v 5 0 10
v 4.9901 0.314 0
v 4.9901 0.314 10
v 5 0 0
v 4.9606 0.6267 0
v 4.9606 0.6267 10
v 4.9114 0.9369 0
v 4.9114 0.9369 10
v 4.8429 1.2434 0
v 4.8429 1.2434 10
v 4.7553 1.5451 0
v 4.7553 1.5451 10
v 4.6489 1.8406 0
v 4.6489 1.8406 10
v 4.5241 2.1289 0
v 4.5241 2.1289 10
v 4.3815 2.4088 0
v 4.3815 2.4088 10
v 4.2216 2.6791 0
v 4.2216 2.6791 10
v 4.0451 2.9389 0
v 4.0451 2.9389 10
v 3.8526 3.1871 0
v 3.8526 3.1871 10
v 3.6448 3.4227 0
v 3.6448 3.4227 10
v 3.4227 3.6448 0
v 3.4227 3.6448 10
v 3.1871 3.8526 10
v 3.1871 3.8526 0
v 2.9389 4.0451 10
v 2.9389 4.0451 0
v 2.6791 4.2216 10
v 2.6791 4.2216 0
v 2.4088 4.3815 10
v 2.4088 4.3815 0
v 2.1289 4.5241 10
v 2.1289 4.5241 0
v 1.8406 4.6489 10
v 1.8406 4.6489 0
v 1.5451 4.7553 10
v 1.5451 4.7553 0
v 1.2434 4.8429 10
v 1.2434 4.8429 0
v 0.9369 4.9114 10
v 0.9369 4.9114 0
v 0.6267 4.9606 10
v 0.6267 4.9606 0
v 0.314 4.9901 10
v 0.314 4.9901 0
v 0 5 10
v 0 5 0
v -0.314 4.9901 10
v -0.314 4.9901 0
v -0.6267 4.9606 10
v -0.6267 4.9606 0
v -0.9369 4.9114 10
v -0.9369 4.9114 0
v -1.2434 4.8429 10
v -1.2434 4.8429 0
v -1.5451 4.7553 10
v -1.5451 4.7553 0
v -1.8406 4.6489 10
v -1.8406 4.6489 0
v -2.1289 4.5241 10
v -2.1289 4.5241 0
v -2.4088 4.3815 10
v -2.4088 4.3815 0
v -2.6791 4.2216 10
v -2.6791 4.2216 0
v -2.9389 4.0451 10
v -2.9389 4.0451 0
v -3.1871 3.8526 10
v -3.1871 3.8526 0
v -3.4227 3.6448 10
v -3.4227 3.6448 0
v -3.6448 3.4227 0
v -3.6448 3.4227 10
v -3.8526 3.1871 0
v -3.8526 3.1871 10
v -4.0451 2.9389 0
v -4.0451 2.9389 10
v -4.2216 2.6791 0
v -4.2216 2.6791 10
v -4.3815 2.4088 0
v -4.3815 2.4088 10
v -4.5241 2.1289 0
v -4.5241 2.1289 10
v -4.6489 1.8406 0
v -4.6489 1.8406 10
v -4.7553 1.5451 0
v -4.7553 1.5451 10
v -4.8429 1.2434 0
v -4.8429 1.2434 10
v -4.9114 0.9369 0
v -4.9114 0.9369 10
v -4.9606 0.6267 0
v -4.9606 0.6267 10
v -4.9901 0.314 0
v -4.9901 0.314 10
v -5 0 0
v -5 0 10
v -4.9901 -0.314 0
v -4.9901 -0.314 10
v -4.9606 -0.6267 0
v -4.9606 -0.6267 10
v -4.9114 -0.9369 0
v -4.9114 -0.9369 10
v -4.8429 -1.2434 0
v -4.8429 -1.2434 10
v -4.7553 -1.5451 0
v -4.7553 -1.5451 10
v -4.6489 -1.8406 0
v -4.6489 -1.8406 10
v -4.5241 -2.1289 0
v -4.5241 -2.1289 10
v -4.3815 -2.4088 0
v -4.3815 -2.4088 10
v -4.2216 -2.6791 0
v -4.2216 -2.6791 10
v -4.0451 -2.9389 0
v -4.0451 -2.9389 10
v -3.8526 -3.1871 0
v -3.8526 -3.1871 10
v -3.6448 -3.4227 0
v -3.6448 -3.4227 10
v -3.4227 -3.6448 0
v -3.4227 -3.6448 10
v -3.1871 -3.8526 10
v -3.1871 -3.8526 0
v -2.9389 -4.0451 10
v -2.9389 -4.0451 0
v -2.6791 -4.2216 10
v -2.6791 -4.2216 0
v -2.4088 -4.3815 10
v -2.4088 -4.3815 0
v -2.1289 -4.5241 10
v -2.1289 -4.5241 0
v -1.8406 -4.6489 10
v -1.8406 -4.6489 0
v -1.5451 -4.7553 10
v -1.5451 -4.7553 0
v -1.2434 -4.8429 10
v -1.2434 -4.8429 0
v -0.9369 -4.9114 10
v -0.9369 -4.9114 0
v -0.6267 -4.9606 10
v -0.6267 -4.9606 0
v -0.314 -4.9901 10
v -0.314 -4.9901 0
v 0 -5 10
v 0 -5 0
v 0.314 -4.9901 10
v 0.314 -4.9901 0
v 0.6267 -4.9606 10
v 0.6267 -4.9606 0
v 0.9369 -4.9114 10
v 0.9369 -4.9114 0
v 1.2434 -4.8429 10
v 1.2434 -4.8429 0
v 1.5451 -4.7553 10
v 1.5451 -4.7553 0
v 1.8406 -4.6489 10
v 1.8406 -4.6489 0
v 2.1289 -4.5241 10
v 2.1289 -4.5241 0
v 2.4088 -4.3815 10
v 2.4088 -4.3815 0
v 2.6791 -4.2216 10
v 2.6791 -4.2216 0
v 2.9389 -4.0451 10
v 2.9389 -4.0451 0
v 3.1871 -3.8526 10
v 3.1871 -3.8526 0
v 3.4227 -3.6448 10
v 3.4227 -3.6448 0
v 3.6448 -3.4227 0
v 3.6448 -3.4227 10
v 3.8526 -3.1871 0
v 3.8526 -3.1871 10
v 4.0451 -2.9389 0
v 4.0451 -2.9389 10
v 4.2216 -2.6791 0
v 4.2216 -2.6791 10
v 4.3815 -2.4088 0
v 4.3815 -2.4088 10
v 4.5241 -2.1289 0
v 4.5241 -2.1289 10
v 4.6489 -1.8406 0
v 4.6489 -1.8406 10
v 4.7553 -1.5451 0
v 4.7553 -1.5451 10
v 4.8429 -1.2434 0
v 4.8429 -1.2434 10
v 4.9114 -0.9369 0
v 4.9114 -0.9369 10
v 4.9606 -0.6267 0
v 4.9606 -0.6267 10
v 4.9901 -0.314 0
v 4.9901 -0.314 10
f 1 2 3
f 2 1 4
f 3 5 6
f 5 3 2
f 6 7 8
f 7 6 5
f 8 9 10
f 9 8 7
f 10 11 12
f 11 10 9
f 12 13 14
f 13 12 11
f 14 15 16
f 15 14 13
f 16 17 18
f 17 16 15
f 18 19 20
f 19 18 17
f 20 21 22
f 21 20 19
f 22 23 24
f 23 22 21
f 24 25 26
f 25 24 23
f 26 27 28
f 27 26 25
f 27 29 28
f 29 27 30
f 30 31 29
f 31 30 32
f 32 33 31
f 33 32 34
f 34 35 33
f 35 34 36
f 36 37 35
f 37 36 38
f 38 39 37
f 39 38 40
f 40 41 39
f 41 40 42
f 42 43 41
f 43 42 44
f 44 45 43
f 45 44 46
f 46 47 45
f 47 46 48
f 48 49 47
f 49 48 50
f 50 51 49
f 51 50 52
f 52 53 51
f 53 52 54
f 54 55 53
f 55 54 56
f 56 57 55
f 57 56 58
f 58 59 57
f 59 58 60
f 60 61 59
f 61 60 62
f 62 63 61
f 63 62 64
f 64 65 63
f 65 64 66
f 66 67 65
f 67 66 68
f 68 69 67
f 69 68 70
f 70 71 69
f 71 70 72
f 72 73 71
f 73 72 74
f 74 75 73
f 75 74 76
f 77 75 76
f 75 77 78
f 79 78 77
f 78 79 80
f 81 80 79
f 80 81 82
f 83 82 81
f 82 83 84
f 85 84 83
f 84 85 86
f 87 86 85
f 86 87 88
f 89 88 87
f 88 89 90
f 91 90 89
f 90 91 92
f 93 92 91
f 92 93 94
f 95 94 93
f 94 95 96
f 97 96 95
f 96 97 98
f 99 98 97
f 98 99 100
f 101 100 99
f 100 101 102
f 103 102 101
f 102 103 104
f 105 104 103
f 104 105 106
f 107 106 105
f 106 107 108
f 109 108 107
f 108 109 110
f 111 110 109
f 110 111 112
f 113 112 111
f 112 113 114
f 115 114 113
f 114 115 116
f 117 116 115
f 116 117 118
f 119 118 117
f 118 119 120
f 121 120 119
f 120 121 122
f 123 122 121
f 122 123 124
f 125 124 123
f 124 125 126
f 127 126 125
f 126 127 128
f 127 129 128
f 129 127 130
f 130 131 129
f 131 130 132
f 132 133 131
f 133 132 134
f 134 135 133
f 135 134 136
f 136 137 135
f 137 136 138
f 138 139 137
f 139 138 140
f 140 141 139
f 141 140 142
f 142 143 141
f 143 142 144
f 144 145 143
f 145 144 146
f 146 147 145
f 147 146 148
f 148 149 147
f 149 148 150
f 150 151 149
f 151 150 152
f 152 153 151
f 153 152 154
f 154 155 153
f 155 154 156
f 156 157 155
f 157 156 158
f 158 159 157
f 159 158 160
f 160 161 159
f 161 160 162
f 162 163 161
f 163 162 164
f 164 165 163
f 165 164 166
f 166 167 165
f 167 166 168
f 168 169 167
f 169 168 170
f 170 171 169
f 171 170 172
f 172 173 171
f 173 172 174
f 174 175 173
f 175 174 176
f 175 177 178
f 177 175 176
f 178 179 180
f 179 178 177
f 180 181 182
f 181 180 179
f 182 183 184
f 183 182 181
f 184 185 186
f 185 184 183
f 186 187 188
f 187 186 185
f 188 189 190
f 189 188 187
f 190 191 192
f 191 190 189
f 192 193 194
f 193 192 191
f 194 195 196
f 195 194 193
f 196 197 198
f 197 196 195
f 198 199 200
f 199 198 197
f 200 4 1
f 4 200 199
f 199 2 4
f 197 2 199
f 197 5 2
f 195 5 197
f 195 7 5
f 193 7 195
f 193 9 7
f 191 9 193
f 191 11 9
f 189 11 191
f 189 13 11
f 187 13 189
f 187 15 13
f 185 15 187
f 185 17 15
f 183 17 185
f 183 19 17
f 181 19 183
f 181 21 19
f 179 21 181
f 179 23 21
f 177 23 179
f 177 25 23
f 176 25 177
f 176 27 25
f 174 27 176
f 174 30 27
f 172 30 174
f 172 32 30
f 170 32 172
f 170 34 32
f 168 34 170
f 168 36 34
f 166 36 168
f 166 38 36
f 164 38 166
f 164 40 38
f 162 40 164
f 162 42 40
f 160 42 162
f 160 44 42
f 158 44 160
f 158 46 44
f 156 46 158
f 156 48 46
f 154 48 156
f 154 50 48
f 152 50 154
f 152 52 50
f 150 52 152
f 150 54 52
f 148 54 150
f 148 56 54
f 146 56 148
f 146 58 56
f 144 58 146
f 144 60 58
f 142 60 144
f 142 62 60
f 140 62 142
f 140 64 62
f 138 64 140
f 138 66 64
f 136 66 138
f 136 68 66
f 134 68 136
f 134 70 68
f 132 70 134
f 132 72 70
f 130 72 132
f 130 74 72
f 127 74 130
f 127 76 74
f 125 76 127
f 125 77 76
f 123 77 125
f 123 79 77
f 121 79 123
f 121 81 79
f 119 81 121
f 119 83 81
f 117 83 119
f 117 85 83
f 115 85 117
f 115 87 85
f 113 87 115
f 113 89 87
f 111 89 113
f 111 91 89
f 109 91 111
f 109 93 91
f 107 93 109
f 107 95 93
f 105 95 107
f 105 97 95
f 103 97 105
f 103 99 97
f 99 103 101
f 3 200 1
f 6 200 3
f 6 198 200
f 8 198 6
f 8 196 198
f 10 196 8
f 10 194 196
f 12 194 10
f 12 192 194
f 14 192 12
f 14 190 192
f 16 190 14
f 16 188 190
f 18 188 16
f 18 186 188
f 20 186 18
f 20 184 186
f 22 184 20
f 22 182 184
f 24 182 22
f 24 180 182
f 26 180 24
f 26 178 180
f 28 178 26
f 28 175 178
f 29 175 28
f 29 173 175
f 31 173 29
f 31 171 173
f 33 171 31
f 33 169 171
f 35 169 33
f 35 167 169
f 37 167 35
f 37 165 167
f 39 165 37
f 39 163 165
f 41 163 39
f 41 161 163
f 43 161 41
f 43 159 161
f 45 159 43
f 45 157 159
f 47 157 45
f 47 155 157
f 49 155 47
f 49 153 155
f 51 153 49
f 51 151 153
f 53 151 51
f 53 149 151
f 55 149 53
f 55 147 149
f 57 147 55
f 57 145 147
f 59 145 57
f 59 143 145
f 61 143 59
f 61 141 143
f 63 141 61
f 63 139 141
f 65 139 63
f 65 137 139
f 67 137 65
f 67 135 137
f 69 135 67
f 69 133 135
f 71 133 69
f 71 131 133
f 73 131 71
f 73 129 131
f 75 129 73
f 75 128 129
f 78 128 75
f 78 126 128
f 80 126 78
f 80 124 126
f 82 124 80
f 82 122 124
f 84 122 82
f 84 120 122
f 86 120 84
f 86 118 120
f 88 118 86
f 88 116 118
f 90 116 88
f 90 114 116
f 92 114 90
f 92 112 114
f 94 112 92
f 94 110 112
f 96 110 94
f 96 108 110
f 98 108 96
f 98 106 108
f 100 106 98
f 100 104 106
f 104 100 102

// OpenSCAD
$fn = 100;

_holder_top_dia = 10;
_holder_top_height = 10;

cylinder(h=_holder_top_height, d=_holder_top_dia);
